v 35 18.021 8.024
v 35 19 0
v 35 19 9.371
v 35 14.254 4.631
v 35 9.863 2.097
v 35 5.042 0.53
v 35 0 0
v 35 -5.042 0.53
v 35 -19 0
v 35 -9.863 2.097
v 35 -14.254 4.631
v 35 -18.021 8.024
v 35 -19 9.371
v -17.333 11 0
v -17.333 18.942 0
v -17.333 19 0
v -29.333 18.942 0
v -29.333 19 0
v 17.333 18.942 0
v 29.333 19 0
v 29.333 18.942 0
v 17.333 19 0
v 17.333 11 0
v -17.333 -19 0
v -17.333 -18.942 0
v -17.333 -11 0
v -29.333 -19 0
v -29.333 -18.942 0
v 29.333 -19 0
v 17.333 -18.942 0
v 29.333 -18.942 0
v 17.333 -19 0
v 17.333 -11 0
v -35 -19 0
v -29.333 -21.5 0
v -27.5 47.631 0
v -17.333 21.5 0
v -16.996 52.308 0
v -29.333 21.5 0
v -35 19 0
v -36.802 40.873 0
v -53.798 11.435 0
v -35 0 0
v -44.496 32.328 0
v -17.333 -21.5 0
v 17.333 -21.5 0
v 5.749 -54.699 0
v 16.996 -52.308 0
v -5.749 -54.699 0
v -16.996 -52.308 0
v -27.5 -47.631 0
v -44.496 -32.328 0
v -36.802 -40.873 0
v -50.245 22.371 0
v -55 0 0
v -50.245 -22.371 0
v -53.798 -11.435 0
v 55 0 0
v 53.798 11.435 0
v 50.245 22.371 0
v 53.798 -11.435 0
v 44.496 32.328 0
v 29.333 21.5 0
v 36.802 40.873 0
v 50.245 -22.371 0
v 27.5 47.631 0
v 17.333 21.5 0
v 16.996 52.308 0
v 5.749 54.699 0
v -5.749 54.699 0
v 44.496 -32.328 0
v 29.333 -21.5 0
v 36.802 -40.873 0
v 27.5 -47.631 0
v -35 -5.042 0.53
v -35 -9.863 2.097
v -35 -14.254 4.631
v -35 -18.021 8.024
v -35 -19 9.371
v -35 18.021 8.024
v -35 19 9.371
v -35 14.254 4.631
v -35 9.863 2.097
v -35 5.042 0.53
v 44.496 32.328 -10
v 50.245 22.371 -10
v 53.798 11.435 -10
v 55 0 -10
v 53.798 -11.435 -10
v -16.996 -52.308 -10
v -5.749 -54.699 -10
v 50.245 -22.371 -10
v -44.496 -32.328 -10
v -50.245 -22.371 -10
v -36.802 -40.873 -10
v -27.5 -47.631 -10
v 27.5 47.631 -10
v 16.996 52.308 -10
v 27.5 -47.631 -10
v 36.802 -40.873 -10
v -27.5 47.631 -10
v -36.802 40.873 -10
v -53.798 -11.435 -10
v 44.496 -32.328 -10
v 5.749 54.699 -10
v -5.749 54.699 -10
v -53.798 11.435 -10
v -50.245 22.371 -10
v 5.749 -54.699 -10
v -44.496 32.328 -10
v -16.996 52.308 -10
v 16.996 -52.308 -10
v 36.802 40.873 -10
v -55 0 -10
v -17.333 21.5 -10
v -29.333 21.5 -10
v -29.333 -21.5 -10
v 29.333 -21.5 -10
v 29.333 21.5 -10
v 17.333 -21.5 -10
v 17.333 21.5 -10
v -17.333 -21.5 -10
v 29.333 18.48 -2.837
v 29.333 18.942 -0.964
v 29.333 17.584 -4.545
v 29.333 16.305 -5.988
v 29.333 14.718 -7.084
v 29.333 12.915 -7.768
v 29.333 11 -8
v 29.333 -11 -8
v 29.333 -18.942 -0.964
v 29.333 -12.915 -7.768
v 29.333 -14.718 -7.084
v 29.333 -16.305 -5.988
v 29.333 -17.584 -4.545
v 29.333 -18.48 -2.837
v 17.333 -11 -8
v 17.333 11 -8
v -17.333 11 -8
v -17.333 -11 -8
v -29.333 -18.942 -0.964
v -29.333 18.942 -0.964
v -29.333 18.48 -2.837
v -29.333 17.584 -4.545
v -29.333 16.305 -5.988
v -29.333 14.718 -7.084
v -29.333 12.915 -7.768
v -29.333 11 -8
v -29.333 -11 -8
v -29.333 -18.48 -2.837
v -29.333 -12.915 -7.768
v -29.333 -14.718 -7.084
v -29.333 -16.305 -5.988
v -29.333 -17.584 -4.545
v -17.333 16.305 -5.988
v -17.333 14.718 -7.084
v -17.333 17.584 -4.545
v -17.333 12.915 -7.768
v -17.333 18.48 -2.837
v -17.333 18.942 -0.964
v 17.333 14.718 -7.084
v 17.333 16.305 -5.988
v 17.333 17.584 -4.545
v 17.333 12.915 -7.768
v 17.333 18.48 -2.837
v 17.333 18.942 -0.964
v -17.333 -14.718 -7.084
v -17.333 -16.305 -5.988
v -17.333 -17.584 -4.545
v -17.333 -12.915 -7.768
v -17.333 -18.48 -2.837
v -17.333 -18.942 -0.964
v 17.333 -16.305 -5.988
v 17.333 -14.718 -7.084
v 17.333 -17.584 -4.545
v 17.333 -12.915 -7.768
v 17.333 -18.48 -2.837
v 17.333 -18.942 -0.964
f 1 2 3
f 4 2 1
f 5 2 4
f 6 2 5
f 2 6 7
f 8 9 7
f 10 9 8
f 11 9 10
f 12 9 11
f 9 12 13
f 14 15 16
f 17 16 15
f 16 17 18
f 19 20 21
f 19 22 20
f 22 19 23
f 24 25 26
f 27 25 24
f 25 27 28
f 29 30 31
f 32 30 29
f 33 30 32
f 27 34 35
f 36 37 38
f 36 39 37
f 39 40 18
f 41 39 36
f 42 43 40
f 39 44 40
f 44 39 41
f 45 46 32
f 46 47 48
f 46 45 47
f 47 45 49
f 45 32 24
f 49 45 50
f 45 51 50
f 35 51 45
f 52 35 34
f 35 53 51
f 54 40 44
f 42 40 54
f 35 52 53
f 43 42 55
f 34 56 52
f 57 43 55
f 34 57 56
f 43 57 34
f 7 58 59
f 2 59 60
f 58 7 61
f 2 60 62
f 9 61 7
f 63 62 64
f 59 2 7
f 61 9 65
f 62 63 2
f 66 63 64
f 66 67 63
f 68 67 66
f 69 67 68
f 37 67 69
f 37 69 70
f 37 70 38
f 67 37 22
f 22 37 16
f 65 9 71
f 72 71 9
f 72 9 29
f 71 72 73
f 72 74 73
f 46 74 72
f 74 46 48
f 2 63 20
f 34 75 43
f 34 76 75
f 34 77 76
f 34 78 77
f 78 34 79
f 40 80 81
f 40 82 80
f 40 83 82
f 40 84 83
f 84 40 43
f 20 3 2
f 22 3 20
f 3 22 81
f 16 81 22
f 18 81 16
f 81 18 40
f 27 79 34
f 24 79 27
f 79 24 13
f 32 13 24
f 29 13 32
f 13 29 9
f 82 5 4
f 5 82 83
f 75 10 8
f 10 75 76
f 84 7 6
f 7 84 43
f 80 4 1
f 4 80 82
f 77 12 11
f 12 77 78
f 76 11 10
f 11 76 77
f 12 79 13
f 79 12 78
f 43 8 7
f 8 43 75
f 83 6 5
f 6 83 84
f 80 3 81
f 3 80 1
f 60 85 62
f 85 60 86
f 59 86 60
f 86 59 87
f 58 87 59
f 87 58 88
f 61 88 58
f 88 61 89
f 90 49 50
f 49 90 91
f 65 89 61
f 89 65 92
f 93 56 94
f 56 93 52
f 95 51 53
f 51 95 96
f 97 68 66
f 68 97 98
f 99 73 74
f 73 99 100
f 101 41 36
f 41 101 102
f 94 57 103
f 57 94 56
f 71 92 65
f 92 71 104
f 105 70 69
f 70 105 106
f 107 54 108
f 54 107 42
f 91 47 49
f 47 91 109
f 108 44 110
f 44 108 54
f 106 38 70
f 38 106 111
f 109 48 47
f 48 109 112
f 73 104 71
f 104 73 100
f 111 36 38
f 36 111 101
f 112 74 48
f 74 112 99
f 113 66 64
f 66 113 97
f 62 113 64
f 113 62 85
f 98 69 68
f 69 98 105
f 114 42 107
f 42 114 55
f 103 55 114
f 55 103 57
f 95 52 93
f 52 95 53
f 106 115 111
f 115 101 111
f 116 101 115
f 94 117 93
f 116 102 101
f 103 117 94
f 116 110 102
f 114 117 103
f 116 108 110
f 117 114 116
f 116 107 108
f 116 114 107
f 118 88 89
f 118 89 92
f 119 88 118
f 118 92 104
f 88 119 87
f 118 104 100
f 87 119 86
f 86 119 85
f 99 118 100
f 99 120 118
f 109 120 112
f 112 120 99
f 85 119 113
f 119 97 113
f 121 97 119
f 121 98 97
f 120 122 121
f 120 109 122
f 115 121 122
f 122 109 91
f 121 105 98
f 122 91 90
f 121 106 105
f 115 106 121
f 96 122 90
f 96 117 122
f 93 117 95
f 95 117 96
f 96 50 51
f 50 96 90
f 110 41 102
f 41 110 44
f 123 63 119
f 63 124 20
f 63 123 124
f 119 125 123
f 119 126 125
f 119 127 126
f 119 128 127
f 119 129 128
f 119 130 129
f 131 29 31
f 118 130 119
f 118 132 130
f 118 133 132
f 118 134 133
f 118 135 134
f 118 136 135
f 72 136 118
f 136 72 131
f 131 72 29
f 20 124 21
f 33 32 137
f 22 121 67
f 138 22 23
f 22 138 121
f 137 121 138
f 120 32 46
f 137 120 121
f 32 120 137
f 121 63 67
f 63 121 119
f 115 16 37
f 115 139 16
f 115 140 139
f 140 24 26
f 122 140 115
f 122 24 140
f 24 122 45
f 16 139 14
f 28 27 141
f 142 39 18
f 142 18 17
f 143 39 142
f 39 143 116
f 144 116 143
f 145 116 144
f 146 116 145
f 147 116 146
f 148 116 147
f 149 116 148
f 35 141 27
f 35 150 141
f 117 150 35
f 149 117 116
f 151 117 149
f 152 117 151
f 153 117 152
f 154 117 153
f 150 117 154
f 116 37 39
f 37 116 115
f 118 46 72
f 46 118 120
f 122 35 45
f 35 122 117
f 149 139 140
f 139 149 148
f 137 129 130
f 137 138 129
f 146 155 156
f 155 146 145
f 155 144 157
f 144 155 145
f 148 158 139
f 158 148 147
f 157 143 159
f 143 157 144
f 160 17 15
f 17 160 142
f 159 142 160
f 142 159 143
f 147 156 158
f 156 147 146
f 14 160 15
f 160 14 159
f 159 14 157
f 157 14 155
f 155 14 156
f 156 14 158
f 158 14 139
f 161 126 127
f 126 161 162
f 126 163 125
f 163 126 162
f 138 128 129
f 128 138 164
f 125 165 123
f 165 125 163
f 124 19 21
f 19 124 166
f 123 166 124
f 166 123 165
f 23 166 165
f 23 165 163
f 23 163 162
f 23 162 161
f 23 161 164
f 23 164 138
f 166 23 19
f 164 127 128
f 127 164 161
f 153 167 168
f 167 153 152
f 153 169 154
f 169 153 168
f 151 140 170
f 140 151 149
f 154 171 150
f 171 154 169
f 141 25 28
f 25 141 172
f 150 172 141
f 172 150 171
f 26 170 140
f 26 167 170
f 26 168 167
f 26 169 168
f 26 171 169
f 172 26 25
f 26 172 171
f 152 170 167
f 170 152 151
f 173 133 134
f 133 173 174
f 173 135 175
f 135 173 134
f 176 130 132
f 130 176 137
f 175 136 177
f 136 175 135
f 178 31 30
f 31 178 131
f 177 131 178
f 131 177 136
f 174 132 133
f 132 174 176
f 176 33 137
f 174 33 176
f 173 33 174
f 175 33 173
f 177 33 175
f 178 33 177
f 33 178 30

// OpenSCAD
platformThikns = 10;
platformDia = 110;

diamVneshNogi = 48.5;

cubeX = 70;
cubeY = 40;
cubeZ = 20;


// translate([0, -26, 0])
// rotate([0, 0, 111])
// GarminKrepa();

// translate([0, 0, -platformThikns])
// rotate([0, 180, 0])
GarminPlatform();




module GarminKrepa() {

 hei = 10;

  translate([0, 0, hei]) {
 
   translate([0, 0, -hei/2])
   hull() {

     cylinder(h=hei, d = 11*2,center=true);
 
     translate([48, 0, 0])
     cube([30, 96, hei], center=true ) ;
   }
   
   translate([0, 0, -12])
   cylinder(h=28, d = 6, center=true);
   translate([0, 0, +3-26])
   cylinder(h=6, d = 12, center=true);
   
   /*
   translate([48, 20, -12])
   cylinder(h=28, d = 6, center=true);
   translate([48, 20, +3-26])
   cylinder(h=6, d = 12, center=true);
   */
   
   translate([48, -20, -12])
   cylinder(h=28, d = 6, center=true);
   translate([48, -20, +3-26])
   cylinder(h=6, d = 12, center=true);

   }
}



module GarminPlatform() {


  difference(){
    translate([0, 0, cubeZ/2])
    cube([ cubeX , cubeY-2 , cubeZ ] , center=true );

    translate([0, 0, diamVneshNogi/2])
    rotate([0, 90, 0])
    cylinder(h=platformDia,d=diamVneshNogi,center=true);    
  }
    

        
  translate([0, 0, -platformThikns/2]) {

    homutHoleX = 12;
    homutHoleY = 1.5;
    homutHoleZ = 12;

    difference() {
      cylinder(h=platformThikns,d=platformDia,center=true);    

      translate([cubeX/3, cubeY/2 + homutHoleY/2, 0])
      cube([homutHoleX, homutHoleY, homutHoleZ], center=true);

      translate([-cubeX/3, cubeY/2 + homutHoleY/2, 0])
      cube([homutHoleX, homutHoleY, homutHoleZ], center=true);
      
      translate([cubeX/3, -cubeY/2 - homutHoleY/2, 0])
      cube([homutHoleX, homutHoleY, homutHoleZ], center=true);

      translate([-cubeX/3, -cubeY/2 - homutHoleY/2, 0])
      cube([homutHoleX, homutHoleY, homutHoleZ], center=true);

      translate([-cubeX/3, 0, -platformThikns/2 +homutHoleY/2])
      cube([homutHoleX, homutHoleY+cubeY, homutHoleY+1], center=true);
      
      translate([+cubeX/3, 0, -platformThikns/2 +homutHoleY/2])
      cube([homutHoleX, homutHoleY+cubeY, homutHoleY+1], center=true);

      translate([+cubeX/3, cubeY/2 - (platformThikns-homutHoleY)/2, homutHoleY/2 + 0.25])
      cube([homutHoleX, 1+platformThikns-homutHoleY, 1 + platformThikns-homutHoleY-1/2], center=true);
      
      translate([+cubeX/3, - cubeY/2 + (platformThikns-homutHoleY)/2, homutHoleY/2 + 0.25])
      cube([homutHoleX, 1+platformThikns-homutHoleY, 1 + platformThikns-homutHoleY-1/2], center=true);

      translate([-cubeX/3, cubeY/2 - (platformThikns-homutHoleY)/2, homutHoleY/2 + 0.25])
      cube([homutHoleX, 1+platformThikns-homutHoleY, 1 + platformThikns-homutHoleY-1/2], center=true);
      
      translate([-cubeX/3, - cubeY/2 + (platformThikns-homutHoleY)/2, homutHoleY/2 + 0.25])
      cube([homutHoleX, 1+platformThikns-homutHoleY, 1 + platformThikns-homutHoleY-1/2], center=true);
    }


   translate([-cubeX/3, -8/2 -3/4 + cubeY/2 - (platformThikns-homutHoleY)/2, platformThikns/2])
   ocrugl();
   
   translate([+cubeX/3, -8/2 -3/4 + cubeY/2 - (platformThikns-homutHoleY)/2, platformThikns/2])
   ocrugl();

   translate([-cubeX/3, +8/2 +3/4 - cubeY/2 + (platformThikns-homutHoleY)/2, platformThikns/2])
   rotate([0, 0, 180])
   ocrugl();
   
   translate([+cubeX/3, +8/2 +3/4 - cubeY/2 + (platformThikns-homutHoleY)/2, platformThikns/2])
   rotate([0, 0, 180])
   ocrugl();
}
      
     // translate([-cubeX/3, 0, -platformThikns/2 +homutHoleY/2])
      // cube([homutHoleX, homutHoleY+cubeY, homutHoleY+1], center=true);


}

module ocrugl() {
    homutHoleX = 12;
    homutHoleY = 1.5;
    homutHoleZ = 12;

     intersection() {

       rotate([0, 90, 0])
       cylinder(h=homutHoleX, d = 16, center=true);

       translate([0, +4, -4])
       cube([12, 8, 8], center=true);

     }

}
